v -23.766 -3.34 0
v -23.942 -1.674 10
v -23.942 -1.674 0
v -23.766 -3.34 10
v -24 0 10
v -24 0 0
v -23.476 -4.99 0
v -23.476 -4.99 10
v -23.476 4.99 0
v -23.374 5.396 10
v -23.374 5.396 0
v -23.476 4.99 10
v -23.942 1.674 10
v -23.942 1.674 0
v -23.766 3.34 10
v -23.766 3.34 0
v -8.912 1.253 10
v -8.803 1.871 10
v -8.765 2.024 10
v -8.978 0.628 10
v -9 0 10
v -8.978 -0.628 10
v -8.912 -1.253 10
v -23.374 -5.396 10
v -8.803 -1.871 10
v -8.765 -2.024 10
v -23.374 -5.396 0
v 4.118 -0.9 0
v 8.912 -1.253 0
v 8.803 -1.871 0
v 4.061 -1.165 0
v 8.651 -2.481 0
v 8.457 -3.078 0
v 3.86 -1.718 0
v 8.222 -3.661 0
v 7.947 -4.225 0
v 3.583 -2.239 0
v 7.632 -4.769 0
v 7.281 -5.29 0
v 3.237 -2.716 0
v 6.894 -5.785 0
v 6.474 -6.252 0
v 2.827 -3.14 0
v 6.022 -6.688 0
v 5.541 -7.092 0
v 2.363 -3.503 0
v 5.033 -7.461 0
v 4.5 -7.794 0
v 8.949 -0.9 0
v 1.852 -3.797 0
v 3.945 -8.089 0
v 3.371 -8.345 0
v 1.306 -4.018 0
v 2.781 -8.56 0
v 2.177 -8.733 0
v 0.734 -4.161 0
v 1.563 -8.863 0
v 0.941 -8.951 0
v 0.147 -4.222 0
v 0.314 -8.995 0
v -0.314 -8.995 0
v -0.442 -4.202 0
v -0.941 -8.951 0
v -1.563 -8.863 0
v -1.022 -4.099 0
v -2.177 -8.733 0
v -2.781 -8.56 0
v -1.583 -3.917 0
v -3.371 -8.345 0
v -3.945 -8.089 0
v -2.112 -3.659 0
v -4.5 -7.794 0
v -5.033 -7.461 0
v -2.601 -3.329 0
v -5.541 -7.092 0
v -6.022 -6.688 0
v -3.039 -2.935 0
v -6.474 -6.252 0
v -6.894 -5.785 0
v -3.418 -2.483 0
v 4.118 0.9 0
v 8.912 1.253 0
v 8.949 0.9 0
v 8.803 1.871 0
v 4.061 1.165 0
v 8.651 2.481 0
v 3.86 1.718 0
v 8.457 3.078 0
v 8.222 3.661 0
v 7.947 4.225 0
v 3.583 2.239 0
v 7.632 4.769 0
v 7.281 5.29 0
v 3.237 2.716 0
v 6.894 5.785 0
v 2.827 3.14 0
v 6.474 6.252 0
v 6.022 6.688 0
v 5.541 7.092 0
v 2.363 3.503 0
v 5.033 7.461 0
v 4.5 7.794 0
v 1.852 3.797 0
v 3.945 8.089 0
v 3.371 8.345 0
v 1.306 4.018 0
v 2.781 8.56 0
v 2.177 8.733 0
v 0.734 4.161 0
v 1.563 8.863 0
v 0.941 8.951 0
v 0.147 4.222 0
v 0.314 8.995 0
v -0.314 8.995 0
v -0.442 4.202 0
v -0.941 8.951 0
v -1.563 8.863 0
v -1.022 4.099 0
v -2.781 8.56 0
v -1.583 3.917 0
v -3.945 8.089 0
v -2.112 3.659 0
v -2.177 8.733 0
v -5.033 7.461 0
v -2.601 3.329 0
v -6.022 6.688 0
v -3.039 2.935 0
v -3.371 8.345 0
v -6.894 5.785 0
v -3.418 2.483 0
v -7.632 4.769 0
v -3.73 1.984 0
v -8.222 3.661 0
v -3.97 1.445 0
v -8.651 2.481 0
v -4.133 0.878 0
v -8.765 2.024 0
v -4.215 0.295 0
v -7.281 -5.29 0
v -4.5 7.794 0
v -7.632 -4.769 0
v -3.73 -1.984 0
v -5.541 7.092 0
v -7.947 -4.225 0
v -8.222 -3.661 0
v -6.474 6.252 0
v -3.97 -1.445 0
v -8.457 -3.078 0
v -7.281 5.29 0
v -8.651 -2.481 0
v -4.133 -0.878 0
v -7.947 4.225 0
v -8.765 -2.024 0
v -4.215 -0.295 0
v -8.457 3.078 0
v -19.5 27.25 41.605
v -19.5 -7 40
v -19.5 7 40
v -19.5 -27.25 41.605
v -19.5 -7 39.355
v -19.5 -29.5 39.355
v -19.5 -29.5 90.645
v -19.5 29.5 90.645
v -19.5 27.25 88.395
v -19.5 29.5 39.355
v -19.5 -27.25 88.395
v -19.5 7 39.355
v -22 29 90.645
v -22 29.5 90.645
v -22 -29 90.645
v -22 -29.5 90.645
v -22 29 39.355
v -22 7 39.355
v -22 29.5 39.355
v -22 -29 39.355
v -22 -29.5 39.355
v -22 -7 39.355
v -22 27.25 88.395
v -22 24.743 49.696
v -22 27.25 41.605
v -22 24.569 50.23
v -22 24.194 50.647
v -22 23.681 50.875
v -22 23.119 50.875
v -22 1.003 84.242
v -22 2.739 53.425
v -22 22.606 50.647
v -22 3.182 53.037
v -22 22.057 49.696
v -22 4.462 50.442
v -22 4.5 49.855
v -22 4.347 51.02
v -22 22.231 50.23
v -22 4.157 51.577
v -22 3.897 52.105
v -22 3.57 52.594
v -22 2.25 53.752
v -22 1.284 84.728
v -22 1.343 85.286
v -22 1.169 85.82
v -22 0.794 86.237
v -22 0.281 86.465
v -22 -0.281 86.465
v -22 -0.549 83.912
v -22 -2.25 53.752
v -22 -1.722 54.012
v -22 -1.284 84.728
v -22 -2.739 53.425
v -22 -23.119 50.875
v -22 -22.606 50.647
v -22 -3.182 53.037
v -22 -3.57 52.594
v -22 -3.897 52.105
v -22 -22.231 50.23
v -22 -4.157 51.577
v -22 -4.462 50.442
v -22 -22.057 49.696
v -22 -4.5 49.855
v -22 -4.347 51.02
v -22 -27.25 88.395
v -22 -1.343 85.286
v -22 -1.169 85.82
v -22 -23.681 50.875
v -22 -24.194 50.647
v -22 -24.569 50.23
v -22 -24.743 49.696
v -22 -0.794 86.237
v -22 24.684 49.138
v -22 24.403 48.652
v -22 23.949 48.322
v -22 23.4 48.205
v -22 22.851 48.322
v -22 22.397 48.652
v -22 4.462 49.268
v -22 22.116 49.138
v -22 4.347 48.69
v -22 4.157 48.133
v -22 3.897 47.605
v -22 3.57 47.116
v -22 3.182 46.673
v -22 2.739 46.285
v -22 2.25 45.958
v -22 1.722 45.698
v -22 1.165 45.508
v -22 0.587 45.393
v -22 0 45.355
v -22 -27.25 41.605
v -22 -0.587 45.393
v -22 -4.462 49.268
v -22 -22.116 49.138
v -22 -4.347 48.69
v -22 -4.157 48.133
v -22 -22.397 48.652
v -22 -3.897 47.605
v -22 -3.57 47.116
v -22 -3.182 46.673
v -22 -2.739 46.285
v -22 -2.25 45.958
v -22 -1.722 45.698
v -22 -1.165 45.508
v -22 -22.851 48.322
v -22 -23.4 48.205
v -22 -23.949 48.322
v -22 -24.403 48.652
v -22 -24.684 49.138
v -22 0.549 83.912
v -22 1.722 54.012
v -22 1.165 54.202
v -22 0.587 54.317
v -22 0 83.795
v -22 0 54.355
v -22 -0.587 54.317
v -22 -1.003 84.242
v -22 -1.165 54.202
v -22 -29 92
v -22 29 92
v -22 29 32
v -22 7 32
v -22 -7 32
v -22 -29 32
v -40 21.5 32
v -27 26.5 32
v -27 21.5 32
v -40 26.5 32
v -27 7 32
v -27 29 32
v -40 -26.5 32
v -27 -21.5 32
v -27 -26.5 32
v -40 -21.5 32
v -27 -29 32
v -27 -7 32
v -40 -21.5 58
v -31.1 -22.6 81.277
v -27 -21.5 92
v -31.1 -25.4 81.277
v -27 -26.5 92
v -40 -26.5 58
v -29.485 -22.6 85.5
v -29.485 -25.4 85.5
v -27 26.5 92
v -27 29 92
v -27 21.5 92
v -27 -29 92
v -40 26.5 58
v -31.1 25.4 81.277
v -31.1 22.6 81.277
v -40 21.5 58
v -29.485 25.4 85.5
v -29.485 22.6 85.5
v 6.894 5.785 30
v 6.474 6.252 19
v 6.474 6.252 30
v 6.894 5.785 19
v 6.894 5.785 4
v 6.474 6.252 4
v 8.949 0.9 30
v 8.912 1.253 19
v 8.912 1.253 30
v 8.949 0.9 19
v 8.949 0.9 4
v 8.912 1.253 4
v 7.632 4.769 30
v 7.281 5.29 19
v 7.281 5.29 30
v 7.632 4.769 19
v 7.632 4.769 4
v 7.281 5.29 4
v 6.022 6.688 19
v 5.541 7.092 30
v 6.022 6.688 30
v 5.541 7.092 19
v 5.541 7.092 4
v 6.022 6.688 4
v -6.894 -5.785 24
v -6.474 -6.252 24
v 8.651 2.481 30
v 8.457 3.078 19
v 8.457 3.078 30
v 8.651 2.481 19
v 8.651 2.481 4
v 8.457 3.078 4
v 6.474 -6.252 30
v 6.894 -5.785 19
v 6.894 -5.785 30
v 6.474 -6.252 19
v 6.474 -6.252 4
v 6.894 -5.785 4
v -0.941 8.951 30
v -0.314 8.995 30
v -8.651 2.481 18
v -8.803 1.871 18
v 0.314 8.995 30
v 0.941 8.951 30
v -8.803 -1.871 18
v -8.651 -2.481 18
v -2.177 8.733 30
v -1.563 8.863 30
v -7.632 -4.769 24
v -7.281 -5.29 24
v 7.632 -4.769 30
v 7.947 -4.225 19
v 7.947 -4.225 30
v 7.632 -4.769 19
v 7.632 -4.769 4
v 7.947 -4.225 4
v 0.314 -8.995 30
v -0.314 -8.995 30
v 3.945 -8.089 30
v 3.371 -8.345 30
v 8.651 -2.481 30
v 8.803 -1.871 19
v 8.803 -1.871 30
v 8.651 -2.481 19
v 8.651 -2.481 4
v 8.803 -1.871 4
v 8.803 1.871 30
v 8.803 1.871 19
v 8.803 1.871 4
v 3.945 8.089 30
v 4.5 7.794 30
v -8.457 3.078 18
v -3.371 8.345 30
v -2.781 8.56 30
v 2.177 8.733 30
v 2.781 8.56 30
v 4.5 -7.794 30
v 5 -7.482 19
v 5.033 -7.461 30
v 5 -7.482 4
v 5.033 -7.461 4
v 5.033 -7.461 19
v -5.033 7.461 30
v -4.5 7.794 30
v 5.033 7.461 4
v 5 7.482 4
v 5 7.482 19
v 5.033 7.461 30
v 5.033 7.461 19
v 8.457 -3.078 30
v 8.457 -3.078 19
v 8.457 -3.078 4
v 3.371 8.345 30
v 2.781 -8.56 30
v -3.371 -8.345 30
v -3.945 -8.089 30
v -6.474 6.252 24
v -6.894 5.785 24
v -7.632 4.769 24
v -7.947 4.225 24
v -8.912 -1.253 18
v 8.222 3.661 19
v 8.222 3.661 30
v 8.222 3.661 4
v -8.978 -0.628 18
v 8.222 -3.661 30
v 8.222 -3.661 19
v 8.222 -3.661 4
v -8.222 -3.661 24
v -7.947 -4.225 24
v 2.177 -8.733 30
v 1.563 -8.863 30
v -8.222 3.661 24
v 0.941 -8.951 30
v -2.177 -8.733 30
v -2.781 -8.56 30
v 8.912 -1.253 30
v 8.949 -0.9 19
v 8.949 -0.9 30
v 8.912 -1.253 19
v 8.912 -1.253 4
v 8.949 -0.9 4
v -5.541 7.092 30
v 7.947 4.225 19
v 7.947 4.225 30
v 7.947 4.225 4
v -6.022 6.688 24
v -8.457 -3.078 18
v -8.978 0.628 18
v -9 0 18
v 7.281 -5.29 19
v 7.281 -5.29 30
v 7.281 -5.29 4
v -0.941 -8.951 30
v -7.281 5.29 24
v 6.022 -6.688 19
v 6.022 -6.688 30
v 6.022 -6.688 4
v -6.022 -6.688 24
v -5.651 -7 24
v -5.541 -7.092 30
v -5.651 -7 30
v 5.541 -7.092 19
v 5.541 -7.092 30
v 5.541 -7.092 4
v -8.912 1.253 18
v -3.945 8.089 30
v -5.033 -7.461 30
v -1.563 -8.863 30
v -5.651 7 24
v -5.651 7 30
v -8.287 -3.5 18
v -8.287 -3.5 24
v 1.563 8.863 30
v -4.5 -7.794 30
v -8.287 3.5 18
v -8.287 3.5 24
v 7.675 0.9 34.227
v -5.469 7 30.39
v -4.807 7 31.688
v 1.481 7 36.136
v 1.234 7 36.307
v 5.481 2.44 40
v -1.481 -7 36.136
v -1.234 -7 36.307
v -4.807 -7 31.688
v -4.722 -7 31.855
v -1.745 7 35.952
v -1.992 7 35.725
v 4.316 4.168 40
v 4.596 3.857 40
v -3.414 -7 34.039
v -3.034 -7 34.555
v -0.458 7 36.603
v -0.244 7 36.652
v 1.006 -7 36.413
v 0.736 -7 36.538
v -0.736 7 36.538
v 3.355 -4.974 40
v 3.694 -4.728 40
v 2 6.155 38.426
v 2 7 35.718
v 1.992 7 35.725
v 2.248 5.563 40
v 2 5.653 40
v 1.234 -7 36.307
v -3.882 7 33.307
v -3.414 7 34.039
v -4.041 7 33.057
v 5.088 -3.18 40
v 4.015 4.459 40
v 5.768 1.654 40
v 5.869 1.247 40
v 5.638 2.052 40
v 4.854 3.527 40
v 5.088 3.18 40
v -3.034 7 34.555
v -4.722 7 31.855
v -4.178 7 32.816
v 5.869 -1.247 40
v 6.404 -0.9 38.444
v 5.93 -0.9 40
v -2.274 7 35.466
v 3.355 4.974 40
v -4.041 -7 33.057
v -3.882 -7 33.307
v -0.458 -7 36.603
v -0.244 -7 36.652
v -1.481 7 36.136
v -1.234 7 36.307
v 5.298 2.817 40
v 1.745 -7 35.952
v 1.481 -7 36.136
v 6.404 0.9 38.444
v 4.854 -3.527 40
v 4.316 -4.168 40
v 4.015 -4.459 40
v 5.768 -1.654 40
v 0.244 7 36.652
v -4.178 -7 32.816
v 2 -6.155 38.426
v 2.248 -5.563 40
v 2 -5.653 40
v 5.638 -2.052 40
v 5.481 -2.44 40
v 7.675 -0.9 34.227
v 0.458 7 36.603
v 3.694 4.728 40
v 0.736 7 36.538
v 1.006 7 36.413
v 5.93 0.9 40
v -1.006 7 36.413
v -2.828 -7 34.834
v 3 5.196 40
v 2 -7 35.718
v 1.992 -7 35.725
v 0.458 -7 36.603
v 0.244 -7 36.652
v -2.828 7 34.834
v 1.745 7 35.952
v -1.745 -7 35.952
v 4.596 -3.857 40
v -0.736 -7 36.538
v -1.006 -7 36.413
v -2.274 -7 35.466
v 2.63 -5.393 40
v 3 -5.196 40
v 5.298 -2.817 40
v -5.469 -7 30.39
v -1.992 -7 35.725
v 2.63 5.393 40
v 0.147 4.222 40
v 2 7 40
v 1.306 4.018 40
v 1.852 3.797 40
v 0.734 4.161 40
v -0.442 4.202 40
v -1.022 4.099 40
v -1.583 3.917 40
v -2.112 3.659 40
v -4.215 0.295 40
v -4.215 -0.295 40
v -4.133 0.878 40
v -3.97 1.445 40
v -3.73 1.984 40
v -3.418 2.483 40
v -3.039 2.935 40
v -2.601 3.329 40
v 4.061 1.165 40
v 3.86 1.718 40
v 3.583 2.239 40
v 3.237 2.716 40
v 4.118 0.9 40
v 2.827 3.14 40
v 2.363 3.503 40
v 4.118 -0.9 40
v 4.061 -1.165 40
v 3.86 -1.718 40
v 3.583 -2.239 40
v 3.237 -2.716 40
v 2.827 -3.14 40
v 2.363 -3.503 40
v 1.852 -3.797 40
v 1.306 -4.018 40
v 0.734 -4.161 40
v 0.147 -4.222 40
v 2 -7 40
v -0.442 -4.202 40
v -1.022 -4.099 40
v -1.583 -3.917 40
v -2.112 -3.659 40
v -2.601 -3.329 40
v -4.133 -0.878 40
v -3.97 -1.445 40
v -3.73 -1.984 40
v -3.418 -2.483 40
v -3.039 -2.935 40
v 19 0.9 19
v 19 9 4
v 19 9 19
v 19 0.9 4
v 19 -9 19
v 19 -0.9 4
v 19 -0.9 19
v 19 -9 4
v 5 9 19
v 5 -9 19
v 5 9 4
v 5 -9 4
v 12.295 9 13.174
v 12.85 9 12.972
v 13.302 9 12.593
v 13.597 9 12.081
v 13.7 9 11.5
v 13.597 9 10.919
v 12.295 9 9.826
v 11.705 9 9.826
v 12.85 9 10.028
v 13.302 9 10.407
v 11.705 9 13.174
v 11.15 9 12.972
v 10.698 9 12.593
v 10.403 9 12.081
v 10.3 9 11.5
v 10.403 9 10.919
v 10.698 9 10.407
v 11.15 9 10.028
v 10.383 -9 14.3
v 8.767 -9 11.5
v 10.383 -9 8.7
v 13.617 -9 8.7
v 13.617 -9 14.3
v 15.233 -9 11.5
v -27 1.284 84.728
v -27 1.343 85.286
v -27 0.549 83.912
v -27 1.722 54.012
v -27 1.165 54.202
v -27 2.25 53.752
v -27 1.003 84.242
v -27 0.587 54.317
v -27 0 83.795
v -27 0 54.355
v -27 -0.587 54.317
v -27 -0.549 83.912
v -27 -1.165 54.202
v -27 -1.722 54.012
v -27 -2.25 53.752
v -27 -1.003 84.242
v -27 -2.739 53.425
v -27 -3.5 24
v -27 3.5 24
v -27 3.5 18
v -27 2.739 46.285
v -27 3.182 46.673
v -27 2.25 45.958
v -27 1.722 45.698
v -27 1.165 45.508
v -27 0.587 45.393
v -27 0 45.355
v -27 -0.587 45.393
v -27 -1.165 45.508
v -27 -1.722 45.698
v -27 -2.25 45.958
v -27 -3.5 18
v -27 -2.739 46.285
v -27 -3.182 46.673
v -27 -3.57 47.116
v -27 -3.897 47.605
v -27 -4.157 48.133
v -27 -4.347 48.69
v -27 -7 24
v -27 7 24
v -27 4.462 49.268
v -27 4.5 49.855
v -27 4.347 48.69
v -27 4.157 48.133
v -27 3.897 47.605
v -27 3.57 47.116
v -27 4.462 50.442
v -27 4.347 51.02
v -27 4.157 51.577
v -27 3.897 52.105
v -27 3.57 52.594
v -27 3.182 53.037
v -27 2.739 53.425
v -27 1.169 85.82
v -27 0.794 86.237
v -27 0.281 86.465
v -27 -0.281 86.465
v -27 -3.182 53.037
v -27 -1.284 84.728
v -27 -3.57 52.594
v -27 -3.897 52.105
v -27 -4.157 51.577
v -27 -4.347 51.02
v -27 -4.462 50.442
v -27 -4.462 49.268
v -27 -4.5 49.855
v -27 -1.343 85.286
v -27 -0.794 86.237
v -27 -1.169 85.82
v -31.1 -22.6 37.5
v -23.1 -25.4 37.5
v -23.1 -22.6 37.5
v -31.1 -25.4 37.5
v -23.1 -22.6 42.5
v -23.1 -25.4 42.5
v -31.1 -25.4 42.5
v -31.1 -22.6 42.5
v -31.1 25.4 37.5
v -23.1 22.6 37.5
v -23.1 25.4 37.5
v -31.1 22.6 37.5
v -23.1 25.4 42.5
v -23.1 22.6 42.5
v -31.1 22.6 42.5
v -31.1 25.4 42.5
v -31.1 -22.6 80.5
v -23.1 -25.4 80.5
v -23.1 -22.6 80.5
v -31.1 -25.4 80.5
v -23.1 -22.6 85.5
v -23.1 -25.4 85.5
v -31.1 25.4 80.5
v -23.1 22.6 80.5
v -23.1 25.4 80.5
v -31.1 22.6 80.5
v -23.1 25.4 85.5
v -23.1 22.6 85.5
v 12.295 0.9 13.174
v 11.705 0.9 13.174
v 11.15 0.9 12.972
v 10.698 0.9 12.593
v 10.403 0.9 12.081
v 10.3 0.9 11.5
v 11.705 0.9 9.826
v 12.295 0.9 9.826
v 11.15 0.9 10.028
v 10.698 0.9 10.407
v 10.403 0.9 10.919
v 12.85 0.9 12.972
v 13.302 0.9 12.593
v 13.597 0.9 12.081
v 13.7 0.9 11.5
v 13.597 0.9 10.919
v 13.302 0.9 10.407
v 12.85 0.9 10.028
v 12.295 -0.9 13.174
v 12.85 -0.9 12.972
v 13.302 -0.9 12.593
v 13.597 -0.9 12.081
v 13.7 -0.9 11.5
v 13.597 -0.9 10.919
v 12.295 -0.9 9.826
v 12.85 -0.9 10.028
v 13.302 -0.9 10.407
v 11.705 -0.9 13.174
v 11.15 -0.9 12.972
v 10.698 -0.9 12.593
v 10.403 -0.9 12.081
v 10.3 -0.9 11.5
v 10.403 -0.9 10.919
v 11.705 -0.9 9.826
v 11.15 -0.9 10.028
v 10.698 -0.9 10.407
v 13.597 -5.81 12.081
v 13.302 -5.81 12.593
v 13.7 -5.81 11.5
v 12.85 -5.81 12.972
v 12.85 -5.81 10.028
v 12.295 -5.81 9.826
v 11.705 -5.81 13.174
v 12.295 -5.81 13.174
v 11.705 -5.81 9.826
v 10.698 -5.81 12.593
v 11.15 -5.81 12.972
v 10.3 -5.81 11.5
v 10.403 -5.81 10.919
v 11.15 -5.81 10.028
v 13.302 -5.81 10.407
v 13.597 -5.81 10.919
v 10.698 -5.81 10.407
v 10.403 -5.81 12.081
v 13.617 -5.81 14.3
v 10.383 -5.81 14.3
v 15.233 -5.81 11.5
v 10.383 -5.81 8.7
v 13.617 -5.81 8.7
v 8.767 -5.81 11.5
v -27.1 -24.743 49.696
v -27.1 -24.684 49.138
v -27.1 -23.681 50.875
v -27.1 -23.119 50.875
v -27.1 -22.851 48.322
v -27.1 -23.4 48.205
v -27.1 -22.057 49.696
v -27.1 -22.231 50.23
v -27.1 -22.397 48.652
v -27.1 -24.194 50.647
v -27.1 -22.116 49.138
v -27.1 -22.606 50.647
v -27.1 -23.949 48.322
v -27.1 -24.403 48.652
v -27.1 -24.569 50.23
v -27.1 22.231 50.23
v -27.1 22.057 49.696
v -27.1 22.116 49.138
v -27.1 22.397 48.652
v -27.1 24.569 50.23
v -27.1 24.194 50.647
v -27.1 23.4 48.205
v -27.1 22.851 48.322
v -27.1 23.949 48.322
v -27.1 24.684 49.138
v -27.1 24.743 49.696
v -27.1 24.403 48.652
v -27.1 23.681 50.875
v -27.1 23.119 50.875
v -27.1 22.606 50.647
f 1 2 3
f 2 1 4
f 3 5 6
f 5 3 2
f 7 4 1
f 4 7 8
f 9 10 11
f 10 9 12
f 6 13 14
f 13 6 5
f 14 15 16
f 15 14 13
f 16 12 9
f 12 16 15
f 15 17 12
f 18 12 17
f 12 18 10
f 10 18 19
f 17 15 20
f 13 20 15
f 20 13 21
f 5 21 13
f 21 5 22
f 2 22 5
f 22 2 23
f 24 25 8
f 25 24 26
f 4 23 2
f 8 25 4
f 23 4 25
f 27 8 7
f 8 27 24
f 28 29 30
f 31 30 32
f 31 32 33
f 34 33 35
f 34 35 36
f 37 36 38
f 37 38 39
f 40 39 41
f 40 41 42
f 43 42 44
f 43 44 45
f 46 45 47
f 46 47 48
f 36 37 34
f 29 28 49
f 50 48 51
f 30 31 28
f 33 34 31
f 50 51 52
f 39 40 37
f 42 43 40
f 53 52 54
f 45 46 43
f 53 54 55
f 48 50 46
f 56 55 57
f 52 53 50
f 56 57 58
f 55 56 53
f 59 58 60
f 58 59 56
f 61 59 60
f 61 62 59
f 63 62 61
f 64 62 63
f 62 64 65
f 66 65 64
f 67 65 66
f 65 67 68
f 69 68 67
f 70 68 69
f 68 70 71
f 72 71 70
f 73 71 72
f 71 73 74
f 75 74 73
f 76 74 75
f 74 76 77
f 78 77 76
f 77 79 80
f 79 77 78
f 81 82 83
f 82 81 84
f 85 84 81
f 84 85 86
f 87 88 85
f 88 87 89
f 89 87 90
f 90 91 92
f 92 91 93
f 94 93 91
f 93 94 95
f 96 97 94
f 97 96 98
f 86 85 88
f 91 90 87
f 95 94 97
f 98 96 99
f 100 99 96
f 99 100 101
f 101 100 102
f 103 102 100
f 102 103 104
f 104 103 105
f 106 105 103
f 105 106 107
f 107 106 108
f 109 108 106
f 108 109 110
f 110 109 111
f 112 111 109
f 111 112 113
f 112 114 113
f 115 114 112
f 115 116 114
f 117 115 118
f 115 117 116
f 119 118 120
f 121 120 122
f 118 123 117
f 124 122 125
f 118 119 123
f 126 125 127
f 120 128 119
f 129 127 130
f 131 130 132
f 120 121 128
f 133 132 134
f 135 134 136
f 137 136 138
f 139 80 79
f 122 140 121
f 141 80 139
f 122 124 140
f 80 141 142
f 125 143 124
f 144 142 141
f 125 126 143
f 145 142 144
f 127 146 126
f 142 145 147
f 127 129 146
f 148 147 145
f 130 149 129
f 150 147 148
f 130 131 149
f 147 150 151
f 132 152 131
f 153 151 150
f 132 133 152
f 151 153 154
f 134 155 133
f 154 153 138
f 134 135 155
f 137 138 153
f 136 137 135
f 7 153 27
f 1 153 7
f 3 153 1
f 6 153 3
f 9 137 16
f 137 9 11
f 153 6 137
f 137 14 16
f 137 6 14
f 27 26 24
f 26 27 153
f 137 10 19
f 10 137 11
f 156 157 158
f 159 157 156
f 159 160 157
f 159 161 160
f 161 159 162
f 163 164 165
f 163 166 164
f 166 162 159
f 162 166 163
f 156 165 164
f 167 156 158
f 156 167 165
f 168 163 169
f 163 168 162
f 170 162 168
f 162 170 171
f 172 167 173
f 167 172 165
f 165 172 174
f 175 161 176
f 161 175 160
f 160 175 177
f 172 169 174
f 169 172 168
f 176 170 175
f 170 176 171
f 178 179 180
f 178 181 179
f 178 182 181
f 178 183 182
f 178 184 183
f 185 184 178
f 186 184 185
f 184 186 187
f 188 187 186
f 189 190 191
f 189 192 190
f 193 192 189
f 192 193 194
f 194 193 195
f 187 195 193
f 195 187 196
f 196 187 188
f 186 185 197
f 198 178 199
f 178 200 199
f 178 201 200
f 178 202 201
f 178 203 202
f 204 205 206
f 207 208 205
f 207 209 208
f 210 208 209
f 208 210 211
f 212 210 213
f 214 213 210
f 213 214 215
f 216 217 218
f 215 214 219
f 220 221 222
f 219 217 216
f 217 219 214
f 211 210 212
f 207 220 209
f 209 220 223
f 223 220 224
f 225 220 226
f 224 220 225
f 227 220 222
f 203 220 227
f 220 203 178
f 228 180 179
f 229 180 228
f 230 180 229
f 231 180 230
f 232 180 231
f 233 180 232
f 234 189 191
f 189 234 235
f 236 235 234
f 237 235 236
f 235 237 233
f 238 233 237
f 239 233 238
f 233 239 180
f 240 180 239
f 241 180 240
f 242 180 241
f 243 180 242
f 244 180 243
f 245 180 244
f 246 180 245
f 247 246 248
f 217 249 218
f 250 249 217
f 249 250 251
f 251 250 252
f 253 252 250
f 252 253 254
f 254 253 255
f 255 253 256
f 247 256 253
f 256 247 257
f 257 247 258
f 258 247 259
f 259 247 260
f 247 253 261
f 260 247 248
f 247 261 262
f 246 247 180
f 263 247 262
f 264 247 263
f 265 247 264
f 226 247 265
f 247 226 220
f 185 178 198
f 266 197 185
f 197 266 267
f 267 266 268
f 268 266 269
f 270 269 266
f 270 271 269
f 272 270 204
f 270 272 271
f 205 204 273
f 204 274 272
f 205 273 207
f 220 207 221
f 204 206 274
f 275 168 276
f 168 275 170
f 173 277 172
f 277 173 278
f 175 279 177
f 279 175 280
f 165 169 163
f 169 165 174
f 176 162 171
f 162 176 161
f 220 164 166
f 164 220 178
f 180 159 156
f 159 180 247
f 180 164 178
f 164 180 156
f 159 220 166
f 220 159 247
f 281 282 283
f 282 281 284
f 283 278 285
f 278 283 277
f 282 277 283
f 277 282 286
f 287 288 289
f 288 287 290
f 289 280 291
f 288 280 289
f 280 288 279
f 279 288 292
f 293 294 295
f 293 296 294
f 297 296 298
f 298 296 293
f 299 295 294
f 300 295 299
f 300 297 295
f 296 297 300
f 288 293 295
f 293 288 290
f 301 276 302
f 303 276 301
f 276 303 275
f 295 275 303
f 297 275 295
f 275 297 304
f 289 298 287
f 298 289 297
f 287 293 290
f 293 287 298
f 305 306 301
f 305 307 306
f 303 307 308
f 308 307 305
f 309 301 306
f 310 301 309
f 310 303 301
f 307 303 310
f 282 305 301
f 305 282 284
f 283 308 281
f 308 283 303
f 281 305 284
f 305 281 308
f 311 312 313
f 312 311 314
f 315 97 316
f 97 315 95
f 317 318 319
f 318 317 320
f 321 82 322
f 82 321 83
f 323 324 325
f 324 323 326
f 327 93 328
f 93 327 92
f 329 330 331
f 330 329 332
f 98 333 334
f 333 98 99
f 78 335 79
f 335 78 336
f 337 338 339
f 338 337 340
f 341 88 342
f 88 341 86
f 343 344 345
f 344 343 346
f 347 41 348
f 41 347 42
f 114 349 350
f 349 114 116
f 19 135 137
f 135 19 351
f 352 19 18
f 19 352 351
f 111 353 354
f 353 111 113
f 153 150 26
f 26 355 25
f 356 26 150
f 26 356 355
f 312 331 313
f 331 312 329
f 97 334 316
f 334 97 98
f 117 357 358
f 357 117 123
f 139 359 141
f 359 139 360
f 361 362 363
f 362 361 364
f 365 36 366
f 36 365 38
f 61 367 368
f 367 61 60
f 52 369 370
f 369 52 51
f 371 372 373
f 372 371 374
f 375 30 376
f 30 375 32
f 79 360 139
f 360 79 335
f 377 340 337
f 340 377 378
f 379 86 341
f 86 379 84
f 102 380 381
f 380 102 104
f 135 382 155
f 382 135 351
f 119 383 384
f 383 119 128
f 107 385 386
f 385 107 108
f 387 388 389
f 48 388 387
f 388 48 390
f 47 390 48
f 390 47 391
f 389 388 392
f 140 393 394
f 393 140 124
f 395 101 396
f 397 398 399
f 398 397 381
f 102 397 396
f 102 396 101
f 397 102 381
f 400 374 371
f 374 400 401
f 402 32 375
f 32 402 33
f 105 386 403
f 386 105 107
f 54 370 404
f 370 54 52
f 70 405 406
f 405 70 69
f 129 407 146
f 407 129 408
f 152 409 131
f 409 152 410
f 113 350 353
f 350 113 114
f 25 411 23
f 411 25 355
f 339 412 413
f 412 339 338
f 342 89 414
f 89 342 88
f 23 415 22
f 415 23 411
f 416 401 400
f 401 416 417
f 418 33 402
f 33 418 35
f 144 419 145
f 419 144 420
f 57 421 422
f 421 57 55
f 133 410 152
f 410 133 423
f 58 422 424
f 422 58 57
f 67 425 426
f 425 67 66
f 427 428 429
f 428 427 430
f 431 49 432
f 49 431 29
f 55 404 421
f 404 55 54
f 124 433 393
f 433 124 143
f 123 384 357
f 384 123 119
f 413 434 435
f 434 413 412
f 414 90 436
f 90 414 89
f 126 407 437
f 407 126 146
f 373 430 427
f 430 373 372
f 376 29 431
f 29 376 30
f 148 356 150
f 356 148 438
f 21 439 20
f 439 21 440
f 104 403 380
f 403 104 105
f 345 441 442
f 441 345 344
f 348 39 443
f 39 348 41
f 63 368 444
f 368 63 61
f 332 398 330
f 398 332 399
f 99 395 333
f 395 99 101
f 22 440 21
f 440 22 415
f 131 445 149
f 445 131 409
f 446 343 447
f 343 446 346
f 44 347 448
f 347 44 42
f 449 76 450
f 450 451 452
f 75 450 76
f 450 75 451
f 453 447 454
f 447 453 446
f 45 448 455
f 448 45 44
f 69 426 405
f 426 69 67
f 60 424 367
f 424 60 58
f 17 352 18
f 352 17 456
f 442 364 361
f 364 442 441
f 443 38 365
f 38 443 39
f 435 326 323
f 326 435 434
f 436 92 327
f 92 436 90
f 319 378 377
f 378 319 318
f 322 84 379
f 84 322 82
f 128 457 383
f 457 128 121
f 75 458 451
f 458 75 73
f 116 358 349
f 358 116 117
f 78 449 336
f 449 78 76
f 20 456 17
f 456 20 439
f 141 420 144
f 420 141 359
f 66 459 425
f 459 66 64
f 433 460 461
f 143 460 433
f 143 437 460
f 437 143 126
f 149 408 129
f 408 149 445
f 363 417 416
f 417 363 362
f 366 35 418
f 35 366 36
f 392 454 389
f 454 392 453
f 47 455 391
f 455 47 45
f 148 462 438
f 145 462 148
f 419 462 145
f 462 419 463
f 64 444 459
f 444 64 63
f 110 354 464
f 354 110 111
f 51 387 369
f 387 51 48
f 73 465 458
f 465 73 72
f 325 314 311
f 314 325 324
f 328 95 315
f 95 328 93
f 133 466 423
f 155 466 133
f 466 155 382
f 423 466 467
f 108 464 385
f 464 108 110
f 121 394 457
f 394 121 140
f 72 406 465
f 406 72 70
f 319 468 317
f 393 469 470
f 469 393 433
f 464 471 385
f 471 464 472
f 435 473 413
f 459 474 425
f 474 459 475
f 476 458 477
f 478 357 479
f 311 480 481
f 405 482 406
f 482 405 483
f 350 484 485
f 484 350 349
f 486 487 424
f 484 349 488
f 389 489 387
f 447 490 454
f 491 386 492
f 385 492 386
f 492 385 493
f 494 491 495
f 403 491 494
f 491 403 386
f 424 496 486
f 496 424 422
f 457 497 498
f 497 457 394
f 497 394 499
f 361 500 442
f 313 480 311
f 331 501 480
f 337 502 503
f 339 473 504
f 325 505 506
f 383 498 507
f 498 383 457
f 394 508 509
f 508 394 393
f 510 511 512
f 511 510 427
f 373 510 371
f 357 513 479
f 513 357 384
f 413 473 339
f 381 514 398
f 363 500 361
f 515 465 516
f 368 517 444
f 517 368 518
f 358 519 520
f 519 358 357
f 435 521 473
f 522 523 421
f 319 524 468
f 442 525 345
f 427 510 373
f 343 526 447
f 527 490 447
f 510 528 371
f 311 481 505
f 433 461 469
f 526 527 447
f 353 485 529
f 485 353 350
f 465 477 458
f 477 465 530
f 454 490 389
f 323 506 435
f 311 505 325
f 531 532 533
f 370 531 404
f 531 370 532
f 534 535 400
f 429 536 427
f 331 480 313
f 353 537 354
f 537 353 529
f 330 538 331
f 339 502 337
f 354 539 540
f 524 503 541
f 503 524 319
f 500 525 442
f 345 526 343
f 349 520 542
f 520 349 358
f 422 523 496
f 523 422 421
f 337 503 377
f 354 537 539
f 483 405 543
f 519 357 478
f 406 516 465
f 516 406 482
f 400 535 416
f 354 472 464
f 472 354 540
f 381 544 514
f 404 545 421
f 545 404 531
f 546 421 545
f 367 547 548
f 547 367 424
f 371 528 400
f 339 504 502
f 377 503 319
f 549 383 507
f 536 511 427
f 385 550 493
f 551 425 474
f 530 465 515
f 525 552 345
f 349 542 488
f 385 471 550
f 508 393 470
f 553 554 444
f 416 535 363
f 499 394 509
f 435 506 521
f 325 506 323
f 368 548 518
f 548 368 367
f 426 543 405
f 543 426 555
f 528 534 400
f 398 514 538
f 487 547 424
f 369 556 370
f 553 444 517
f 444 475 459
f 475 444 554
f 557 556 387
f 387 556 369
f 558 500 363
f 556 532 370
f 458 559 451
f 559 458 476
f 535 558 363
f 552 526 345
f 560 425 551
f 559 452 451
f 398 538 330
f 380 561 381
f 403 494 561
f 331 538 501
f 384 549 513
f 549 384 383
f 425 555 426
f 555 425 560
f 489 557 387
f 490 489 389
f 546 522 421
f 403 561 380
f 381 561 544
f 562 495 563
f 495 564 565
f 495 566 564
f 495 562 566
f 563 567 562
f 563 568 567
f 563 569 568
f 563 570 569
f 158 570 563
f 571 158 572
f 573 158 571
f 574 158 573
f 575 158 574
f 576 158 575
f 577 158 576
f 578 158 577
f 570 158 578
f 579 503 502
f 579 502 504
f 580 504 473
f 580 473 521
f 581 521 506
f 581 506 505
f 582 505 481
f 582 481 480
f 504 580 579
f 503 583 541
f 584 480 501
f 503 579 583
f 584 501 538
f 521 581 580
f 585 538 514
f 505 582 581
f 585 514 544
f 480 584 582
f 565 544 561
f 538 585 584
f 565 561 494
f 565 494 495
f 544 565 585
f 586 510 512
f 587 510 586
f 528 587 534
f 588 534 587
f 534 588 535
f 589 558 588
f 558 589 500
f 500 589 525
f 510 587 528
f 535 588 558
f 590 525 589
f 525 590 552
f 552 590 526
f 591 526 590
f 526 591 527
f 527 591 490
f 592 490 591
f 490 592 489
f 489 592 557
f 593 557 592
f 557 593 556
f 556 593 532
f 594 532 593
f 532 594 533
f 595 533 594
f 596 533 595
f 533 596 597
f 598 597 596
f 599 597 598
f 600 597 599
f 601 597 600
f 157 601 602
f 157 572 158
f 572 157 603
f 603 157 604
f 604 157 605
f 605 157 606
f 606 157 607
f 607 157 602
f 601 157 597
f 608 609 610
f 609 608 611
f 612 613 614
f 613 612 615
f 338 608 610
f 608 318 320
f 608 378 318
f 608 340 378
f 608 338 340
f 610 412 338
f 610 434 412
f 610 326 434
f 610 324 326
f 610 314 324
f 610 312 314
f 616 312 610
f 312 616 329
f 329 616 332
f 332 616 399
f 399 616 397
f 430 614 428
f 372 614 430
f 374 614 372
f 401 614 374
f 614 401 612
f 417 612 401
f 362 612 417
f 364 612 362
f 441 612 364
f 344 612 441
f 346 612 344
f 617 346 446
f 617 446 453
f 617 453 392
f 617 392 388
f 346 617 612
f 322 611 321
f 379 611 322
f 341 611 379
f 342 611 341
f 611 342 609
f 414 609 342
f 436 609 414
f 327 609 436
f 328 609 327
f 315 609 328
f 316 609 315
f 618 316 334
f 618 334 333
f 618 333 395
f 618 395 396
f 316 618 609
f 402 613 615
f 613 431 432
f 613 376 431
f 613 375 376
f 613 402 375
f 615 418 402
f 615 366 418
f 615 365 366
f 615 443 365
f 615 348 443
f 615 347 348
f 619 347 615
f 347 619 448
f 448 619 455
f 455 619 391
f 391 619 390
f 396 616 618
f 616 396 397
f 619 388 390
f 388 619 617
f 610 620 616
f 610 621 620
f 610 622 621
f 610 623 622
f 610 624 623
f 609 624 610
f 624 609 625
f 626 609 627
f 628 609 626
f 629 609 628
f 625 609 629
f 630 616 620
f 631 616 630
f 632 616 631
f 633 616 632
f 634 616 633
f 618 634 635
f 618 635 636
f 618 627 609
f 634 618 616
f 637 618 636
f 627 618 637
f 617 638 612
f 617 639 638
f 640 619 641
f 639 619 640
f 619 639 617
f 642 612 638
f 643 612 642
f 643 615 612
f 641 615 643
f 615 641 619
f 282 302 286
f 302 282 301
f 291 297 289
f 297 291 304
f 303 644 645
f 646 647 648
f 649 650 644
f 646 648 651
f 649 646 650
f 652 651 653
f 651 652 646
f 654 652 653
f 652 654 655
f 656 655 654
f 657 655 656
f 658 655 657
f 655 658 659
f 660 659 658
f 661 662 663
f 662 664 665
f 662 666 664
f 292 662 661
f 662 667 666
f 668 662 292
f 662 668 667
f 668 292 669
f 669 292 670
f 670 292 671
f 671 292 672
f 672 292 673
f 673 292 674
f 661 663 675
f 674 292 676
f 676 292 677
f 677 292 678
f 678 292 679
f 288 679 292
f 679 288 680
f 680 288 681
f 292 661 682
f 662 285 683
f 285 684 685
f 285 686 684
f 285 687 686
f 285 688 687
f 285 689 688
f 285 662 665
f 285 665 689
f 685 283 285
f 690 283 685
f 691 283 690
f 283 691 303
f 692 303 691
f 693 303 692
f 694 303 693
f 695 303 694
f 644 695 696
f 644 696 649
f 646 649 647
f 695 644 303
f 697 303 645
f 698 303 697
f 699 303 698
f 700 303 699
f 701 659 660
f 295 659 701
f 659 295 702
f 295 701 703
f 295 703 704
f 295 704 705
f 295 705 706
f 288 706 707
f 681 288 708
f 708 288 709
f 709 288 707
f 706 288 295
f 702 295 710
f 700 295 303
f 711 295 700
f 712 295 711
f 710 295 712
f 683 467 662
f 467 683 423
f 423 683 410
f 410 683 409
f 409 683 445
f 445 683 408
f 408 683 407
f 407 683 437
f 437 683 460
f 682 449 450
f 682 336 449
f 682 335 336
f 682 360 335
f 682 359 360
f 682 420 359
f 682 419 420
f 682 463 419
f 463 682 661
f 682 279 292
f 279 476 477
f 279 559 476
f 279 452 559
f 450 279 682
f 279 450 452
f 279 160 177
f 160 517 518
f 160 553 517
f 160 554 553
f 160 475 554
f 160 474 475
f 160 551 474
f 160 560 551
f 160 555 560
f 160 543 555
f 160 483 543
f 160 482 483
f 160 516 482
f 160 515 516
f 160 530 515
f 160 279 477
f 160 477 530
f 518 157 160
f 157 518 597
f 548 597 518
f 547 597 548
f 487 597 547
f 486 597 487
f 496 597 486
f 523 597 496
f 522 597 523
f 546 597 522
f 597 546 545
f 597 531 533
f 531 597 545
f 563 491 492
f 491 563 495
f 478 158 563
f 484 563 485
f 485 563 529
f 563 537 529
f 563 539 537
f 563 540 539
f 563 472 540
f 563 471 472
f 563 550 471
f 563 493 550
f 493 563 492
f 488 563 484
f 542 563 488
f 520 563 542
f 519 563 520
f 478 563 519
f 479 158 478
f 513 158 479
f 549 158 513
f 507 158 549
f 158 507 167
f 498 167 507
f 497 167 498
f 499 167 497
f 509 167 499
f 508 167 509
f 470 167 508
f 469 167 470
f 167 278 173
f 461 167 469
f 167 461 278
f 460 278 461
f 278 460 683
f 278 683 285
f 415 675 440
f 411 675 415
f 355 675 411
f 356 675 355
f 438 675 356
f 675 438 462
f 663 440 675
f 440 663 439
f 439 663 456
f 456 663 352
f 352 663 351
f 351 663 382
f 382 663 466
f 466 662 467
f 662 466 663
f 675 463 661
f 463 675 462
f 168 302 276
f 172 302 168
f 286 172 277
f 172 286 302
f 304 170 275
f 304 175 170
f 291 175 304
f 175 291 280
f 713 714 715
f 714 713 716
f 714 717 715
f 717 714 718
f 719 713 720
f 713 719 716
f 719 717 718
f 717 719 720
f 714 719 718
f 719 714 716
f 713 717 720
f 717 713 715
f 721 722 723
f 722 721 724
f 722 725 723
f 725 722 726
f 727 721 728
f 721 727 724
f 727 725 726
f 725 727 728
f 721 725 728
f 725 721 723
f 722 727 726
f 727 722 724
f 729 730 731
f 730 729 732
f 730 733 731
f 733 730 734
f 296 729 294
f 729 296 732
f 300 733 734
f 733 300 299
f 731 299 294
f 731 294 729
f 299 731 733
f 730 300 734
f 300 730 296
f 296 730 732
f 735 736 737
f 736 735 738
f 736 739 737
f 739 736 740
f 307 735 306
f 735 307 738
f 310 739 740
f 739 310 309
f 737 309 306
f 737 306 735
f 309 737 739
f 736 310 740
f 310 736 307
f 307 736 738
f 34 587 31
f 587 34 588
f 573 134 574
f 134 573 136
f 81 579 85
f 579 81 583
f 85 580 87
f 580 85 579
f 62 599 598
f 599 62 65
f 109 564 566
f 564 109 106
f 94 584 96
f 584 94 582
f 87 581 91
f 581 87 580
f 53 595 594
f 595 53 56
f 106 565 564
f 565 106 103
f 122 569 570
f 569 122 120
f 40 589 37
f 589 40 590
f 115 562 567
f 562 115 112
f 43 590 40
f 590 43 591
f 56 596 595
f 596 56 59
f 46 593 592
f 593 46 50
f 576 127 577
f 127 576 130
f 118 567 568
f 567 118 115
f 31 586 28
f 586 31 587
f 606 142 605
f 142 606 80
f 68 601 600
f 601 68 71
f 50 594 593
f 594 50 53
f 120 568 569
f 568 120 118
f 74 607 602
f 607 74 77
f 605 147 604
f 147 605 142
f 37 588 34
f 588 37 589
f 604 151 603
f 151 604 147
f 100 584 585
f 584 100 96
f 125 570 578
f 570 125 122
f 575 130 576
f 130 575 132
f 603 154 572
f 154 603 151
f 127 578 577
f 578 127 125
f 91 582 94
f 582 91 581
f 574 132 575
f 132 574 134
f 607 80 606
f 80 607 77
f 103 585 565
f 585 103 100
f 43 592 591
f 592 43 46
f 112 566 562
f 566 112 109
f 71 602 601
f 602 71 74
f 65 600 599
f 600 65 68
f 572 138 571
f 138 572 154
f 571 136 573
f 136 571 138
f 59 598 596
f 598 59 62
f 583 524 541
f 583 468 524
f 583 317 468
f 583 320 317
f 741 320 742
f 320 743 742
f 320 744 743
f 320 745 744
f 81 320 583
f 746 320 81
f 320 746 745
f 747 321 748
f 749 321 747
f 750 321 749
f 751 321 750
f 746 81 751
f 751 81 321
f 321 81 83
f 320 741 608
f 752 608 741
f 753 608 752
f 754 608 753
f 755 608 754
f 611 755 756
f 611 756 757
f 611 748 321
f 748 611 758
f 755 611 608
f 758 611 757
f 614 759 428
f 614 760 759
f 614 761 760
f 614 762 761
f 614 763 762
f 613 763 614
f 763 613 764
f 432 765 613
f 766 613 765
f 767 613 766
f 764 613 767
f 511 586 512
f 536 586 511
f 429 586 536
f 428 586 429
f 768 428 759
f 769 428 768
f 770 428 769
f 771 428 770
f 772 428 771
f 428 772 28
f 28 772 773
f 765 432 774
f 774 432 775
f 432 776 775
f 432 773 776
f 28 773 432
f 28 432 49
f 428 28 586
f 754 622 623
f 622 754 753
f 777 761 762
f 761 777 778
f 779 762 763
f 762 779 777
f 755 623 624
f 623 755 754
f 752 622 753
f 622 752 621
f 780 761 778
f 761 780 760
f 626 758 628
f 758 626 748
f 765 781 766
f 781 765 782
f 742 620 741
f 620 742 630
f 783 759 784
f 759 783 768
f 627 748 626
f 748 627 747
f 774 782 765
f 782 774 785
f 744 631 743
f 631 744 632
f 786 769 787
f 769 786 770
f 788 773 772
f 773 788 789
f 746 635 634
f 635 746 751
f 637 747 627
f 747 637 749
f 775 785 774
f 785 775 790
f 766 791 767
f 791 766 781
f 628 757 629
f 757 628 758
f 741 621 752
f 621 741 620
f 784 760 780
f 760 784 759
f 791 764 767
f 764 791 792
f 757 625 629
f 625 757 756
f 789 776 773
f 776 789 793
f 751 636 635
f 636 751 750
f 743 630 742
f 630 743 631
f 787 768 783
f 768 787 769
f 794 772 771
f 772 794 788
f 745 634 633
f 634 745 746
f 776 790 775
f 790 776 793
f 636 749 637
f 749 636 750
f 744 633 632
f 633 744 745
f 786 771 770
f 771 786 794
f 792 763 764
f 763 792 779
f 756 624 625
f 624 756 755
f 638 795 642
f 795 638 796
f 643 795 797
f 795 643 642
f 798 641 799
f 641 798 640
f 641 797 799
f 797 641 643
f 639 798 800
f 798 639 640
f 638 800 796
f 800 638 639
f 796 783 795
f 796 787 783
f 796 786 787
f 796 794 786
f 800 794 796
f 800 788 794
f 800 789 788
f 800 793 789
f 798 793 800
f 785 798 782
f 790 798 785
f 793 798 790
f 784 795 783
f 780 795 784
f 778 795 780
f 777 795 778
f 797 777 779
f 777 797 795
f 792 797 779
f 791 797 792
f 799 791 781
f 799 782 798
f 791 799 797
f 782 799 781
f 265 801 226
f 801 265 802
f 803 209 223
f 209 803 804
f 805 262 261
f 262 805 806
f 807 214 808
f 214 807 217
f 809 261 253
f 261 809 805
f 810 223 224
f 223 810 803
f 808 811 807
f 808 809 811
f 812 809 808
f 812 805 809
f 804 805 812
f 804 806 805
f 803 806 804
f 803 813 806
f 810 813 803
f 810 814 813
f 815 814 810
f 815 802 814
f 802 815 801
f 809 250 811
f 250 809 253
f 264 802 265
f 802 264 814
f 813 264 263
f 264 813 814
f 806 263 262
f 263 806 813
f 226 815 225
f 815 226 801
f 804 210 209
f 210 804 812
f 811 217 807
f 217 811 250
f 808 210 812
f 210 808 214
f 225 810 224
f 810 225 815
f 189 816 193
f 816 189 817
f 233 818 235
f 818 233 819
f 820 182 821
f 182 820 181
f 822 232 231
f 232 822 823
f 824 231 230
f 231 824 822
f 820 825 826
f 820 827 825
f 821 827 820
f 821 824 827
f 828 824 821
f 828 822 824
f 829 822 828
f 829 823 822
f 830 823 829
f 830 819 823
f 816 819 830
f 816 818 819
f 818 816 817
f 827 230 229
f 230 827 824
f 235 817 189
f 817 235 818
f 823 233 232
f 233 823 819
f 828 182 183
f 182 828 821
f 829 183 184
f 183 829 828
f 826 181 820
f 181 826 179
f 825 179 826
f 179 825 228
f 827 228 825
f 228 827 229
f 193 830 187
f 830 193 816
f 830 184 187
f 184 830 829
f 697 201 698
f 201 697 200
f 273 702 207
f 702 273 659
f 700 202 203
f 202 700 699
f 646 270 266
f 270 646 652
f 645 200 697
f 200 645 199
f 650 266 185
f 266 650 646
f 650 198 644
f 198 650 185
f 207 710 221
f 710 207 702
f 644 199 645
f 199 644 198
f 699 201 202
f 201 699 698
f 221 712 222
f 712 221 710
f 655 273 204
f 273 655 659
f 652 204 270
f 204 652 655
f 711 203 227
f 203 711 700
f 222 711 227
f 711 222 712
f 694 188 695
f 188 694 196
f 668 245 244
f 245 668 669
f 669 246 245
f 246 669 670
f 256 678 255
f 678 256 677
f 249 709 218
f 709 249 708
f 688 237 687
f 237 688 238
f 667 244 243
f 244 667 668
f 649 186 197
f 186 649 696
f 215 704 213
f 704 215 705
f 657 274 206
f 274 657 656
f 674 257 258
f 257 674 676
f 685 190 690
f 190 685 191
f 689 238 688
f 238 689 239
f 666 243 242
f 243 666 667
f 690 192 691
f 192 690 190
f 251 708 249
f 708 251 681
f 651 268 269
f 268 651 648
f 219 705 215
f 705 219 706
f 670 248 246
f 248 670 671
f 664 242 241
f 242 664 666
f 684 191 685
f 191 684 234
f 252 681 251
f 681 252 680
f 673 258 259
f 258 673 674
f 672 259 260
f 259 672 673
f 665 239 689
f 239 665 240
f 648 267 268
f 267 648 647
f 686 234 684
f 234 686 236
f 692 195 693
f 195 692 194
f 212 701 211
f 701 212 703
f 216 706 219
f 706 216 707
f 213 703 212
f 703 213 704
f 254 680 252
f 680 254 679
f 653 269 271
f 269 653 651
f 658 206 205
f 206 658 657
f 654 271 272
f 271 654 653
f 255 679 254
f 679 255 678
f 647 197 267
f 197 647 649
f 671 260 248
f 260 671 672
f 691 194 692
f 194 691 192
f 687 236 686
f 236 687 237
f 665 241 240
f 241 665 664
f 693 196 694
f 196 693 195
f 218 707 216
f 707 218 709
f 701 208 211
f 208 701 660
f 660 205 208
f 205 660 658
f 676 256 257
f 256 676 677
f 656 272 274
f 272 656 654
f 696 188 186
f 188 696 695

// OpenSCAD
// file: params.scad
// ============================================================
//  Scanner 3D LiDAR — paramètres partagés
//  Toutes les cotes sont en millimètres.
//
//  Repère d'assemblage : z = 0 sur la face SUPÉRIEURE du plateau
//  de base. L'axe de rotation (lacet psi) est l'axe Z.
// ============================================================

// Finesse de facettisation adaptative : les petits perçages restent
// légers, les grands diamètres restent lisses.
$fa = 4;
$fs = 0.6;

// ------------------------------------------------------------
//  Ajustements d'impression
//  À recalibrer sur votre imprimante avec mechanical/openscad/
//  test_fits.scad avant d'imprimer les pièces définitives.
// ------------------------------------------------------------
fit_press = 0.15;   // serré   : roulement — encoche 5 du coupon (delta +0,15 → Ø22,15)
fit_slide = 0.45;   // glissant: tige — encoche 4 (delta +0,10 → Ø8,45)
fit_free = 0.50;    // libre   : dégagements

// ------------------------------------------------------------
//  Roulement 608ZZ
// ------------------------------------------------------------
bearing_od = 22;
bearing_id = 8;
bearing_w = 7;

// ------------------------------------------------------------
//  Arbre vertical (tige acier rectifiée Ø8 h6)
// ------------------------------------------------------------
shaft_d = 8;
// Longueur utile : de l'accouplement (z 65) au sommet du moyeu (z 180).
// Ne PAS dépasser 180 : au-delà, la tige pénètre dans le corps du LD19.
shaft_len = 115;

// ------------------------------------------------------------
//  Moteur NEMA 17 (17HS4401)
// ------------------------------------------------------------
nema_body = 42.3;
nema_len = 40;       // longueur du corps (marge : 38 mm réels)
nema_pitch = 31;     // entraxe carré des 4 vis M3
nema_boss_d = 22;    // bossage de centrage
nema_boss_h = 2;
nema_shaft_d = 5;
nema_shaft_l = 24;

// ------------------------------------------------------------
//  Accouplement flexible 5 mm -> 8 mm (type mâchoires / araignée)
// ------------------------------------------------------------
coupler_d = 19;
coupler_l = 25;

// ------------------------------------------------------------
//  LiDAR — STL-19P / FHL-LD19P (LDROBOT, 3 oreilles de fixation)
//  Câble vers le bas au montage sur le berceau.
//  ATTENTION : lidar_optical_offset à VÉRIFIER au pied à coulisse.
//  Voir docs/calibration.md § « Mesure du décalage optique ».
//  Perçage : datasheet STL-19P § 5.1 (46,8 × 38,59 mm, M2,5).
// ------------------------------------------------------------
lidar_w = 54;                  // envergure Y (oreilles comprises)
lidar_h = 46.29;               // hauteur Z sur la platine
lidar_thk = 35;                // profondeur X (corps + dôme)
lidar_optical_offset = 22;     // plan de balayage / face de fixation  <-- À VÉRIFIER
lidar_screw_d = 2.7;           // M2.5 traversant (contre-sens 4,46 × 2 sur capteur)
lidar_hole_y = 23.4;           // demi-entraxe Y des oreilles latérales (46,8 / 2)
lidar_side_hole_z = 7.7;       // Z oreilles lat. depuis le bas du footprint (câble en bas)
lidar_top_hole_z = 43.29;      // Z oreille haute (46,29 − 3)
lidar_cable_z = 8;             // passage nappe depuis le bas du footprint

// ------------------------------------------------------------
//  Visserie M3
// ------------------------------------------------------------
m3_clear = 3.4;
m3_head_d = 6.2;
m3_head_h = 3.2;
m3_nut_af = 5.6;   // entreplat
m3_nut_h = 2.7;

// ------------------------------------------------------------
//  Insert laiton 1/4"-20 UNC (fixation trépied)
// ------------------------------------------------------------
insert_qtr_d = 8.4;
insert_qtr_l = 13;

// ------------------------------------------------------------
//  Plateau de base
// ------------------------------------------------------------
plate_d = 126;
plate_t = 8;
tripod_boss_d = 30;
tripod_boss_h = 16;
tower_bolt_circle = 106;   // hors du cône : têtes de vis accessibles

// ------------------------------------------------------------
//  Colonne à roulements  (z local = 0 sur la face inférieure,
//  qui repose sur la face supérieure du plateau)
// ------------------------------------------------------------
tower_flange_d = 118;
tower_flange_t = 6;
tower_base_d = 96;
tower_top_d = 34;
tower_cone_top_z = 100;   // fin du cône
tower_total_h = 133;      // hauteur totale
tower_cavity_d = 62;      // dégagement moteur (diagonale NEMA 17 = 59.8 mm)
tower_cavity_top_z = 42;
tower_throat_d = 26;      // dégagement accouplement (Ø19)
tower_throat_z = 78;

bearing_lo_z = 82;        // face inférieure du roulement bas
bearing_hi_z = 122;       // face inférieure du roulement haut
bearing_relief_d = 23.5;

// ------------------------------------------------------------
//  Berceau LiDAR  (cotes en repère d'assemblage global)
// ------------------------------------------------------------
hub_d = 18;
hub_z0 = 140;
hub_z1 = 180;
hub_top_d = 12;          // rétreint pour limiter l'occultation au nadir
web_z0 = 176;
web_z1 = 188;
web_hw = 7;              // demi-largeur en Y
plate_x = -22;           // face de fixation du LiDAR (= -lidar_optical_offset)
cradle_plate_t = 5;
optical_z = 205;         // hauteur du centre optique  => centre du nuage

// ------------------------------------------------------------
//  Boîtier électronique
// ------------------------------------------------------------
box_ix = 106;
box_iy = 76;
box_iz = 34;
box_wall = 2.5;
// file: lib.scad
// ============================================================
//  Primitives réutilisables
// ============================================================

include <params.scad>

// Empreinte hexagonale pour écrou (entreplat = af)
module nut_pocket(af = m3_nut_af, h = m3_nut_h, slot = 0) {
    d = af / cos(30);
    union() {
        cylinder(d = d, h = h, $fn = 6);
        // couloir d'insertion latéral
        if (slot > 0)
            translate([0, -af / 2, 0]) cube([slot, af, h]);
    }
}

// Trou de passage M3 avec lamage pour tête cylindrique
module m3_counterbore(depth, head_depth = m3_head_h) {
    translate([0, 0, -0.1]) cylinder(d = m3_clear, h = depth + 0.2);
    translate([0, 0, depth - head_depth]) cylinder(d = m3_head_d, h = head_depth + 0.1);
}

// Lumière oblongue (slot) orientée selon X, traversant en Z
module slot(d, len, h) {
    hull() {
        translate([-len / 2, 0, 0]) cylinder(d = d, h = h);
        translate([len / 2, 0, 0]) cylinder(d = d, h = h);
    }
}

// Fenêtre hexagonale auto-portante (sommet vers le haut),
// axe horizontal selon X, à percer dans une paroi.
module hex_window(across, depth) {
    rotate([0, 90, 0]) rotate([0, 0, 90])
        cylinder(d = across / cos(30), h = depth, $fn = 6, center = true);
}

// Congé de raccordement (quart de tore) à la base d'un cylindre
module fillet_ring(r_outer, r_fillet) {
    rotate_extrude()
        translate([r_outer, 0, 0])
            difference() {
                square([r_fillet, r_fillet]);
                translate([r_fillet, r_fillet]) circle(r = r_fillet);
            }
}

// Passe-câble : fente arrondie traversante
module cable_slot(len, width, h) {
    hull() {
        translate([-len / 2, 0, -0.1]) cylinder(d = width, h = h + 0.2);
        translate([len / 2, 0, -0.1]) cylinder(d = width, h = h + 0.2);
    }
}

// Trous pour collier de serrage (rilsan) : deux fentes parallèles
module zip_tie_pair(spacing = 10, w = 4, t = 2.2, h = 10) {
    for (s = [-1, 1])
        translate([s * spacing / 2, 0, -0.1])
            cube([t, w, h + 0.2], center = false);
}
// main file
// ============================================================
//  03 — Berceau LiDAR
//  Serre sur la tige Ø8 et présente le STL-19P (LDROBOT) COUCHÉ SUR LA
//  TRANCHE, plan de balayage vertical contenant l'axe de rotation.
//  Fixation : 3 oreilles M2,5 (46,8 × 38,59 mm), câble vers le bas.
//
//  Repère local : z = 0 à la base du moyeu (= z 140 en global).
//  Centre optique du LD19 en (0, 0, 65) local.
//
//  Contrainte de non-collision : tout ce qui se trouve en
//  x > plate_x doit rester sous z = 42.7 (dessous du LD19).
//
//  Impression : COUCHÉ, platine à plat sur le plateau
//  (rotate([0, -90, 0])). Supports sous le moyeu uniquement.
// ============================================================

include <lib.scad>

hub_h = hub_z1 - hub_z0;               // 40
optical_local_z = optical_z - hub_z0;  // 65
lidar_bottom = optical_local_z - lidar_h / 2;   // 45.7
clear_z = lidar_bottom - 3;                     // 42.7 : plafond du voile

web_lo = 24;
web_hi = 40;
plate_lo = 32;
plate_hi = 92;
plate_hw = 29;      // demi-largeur platine (58 mm > envergure 54 mm)
plate_back = plate_x - cradle_plate_t;   // -27

// Perçage M2,5 traversant la platine (axe X)
module lidar_mount_hole() {
    translate([plate_back - 0.1, 0, 0])
        rotate([0, 90, 0]) cylinder(d = lidar_screw_d, h = cradle_plate_t + 3);
}

module lidar_cradle() {
    difference() {
        union() {
            // ---------- Moyeu de serrage sur la tige ----------
            cylinder(d = hub_d, h = hub_h - 10);
            translate([0, 0, hub_h - 10])
                cylinder(d1 = hub_d, d2 = hub_top_d, h = 10);

            // ---------- Oreilles de serrage ----------
            translate([5, -9, 4]) cube([14, 18, 15]);

            // ---------- Secteur de butée (référence d'azimut) ----------
            rotate([0, 0, 180])
                difference() {
                    cylinder(d = 48, h = 10);
                    translate([0, 0, -1]) cylinder(d = hub_d - 0.01, h = 12);
                    rotate([0, 0, 13]) translate([-40, 0, -1]) cube([80, 80, 12]);
                    rotate([0, 0, -13]) translate([-40, -80, -1]) cube([80, 80, 12]);
                }

            // ---------- Voile de liaison moyeu <-> platine ----------
            hull() {
                translate([-2, -web_hw, web_lo]) cube([4, 2 * web_hw, web_hi - web_lo]);
                translate([plate_back, -web_hw, web_lo])
                    cube([4, 2 * web_hw, web_hi - web_lo]);
            }
            // nervure centrale du voile
            translate([plate_back, -3.5, web_lo - 6])
                cube([abs(plate_back), 7, clear_z - web_lo + 6]);

            // ---------- Platine de fixation du LiDAR ----------
            translate([plate_back, -plate_hw, plate_lo])
                cube([cradle_plate_t, 2 * plate_hw, plate_hi - plate_lo]);

            // ---------- Rebord de centrage STL-19P (côté +X) ----------
            difference() {
                translate([plate_x, -(lidar_w / 2 + 2.5), lidar_bottom - 2.5])
                    cube([2.5, lidar_w + 5, lidar_h + 5]);
                translate([plate_x - 0.1, -lidar_w / 2 - 0.25, lidar_bottom - 0.25])
                    cube([3, lidar_w + 0.5, lidar_h + 0.5]);
            }

            // ---------- Nervures dorsales (côté -X, hors volume LiDAR) ----------
            for (s = [-1, 1])
                translate([plate_back, s * (plate_hw - 5) - 2.5, plate_lo])
                    hull() {
                        cube([0.1, 5, plate_hi - plate_lo]);
                        translate([-13, 0, 0]) cube([0.1, 5, 26]);
                    }
        }

        // ---------- Alésage de la tige ----------
        translate([0, 0, -0.1]) cylinder(d = shaft_d + fit_slide, h = hub_h + 0.2);

        // ---------- Fente du collier ----------
        translate([3, -0.9, -0.1]) cube([22, 1.8, hub_h + 0.2]);

        // ---------- Vis de serrage M3 (axe Y) ----------
        translate([12, 12, 11.5]) rotate([90, 0, 0]) cylinder(d = m3_clear, h = 24);
        translate([12, -9.01, 11.5]) rotate([-90, 0, 0])
            cylinder(d = m3_nut_af / cos(30), h = 3.2, $fn = 6);

        // ---------- Fixation STL-19P : 3 oreilles M2,5 (câble vers le bas) ----------
        translate([0, -lidar_hole_y, lidar_bottom + lidar_side_hole_z])
            lidar_mount_hole();
        translate([0, lidar_hole_y, lidar_bottom + lidar_side_hole_z])
            lidar_mount_hole();
        translate([0, 0, lidar_bottom + lidar_top_hole_z])
            lidar_mount_hole();

        // ---------- Passage nappe (connecteur côté bas du capteur) ----------
        translate([plate_back - 0.1, 0, lidar_bottom + lidar_cable_z])
            rotate([0, 90, 0]) cylinder(d = 9, h = cradle_plate_t + 3);

        // ---------- Colliers rilsan de sécurité ----------
        for (z = [plate_lo + 8, plate_hi - 9])
            for (y = [-1, 1])
                translate([plate_back - 0.1, y * (plate_hw - 5), z])
                    rotate([0, 90, 0])
                        cube([5, 2.8, cradle_plate_t + 3], center = true);
    }
}

lidar_cradle();
